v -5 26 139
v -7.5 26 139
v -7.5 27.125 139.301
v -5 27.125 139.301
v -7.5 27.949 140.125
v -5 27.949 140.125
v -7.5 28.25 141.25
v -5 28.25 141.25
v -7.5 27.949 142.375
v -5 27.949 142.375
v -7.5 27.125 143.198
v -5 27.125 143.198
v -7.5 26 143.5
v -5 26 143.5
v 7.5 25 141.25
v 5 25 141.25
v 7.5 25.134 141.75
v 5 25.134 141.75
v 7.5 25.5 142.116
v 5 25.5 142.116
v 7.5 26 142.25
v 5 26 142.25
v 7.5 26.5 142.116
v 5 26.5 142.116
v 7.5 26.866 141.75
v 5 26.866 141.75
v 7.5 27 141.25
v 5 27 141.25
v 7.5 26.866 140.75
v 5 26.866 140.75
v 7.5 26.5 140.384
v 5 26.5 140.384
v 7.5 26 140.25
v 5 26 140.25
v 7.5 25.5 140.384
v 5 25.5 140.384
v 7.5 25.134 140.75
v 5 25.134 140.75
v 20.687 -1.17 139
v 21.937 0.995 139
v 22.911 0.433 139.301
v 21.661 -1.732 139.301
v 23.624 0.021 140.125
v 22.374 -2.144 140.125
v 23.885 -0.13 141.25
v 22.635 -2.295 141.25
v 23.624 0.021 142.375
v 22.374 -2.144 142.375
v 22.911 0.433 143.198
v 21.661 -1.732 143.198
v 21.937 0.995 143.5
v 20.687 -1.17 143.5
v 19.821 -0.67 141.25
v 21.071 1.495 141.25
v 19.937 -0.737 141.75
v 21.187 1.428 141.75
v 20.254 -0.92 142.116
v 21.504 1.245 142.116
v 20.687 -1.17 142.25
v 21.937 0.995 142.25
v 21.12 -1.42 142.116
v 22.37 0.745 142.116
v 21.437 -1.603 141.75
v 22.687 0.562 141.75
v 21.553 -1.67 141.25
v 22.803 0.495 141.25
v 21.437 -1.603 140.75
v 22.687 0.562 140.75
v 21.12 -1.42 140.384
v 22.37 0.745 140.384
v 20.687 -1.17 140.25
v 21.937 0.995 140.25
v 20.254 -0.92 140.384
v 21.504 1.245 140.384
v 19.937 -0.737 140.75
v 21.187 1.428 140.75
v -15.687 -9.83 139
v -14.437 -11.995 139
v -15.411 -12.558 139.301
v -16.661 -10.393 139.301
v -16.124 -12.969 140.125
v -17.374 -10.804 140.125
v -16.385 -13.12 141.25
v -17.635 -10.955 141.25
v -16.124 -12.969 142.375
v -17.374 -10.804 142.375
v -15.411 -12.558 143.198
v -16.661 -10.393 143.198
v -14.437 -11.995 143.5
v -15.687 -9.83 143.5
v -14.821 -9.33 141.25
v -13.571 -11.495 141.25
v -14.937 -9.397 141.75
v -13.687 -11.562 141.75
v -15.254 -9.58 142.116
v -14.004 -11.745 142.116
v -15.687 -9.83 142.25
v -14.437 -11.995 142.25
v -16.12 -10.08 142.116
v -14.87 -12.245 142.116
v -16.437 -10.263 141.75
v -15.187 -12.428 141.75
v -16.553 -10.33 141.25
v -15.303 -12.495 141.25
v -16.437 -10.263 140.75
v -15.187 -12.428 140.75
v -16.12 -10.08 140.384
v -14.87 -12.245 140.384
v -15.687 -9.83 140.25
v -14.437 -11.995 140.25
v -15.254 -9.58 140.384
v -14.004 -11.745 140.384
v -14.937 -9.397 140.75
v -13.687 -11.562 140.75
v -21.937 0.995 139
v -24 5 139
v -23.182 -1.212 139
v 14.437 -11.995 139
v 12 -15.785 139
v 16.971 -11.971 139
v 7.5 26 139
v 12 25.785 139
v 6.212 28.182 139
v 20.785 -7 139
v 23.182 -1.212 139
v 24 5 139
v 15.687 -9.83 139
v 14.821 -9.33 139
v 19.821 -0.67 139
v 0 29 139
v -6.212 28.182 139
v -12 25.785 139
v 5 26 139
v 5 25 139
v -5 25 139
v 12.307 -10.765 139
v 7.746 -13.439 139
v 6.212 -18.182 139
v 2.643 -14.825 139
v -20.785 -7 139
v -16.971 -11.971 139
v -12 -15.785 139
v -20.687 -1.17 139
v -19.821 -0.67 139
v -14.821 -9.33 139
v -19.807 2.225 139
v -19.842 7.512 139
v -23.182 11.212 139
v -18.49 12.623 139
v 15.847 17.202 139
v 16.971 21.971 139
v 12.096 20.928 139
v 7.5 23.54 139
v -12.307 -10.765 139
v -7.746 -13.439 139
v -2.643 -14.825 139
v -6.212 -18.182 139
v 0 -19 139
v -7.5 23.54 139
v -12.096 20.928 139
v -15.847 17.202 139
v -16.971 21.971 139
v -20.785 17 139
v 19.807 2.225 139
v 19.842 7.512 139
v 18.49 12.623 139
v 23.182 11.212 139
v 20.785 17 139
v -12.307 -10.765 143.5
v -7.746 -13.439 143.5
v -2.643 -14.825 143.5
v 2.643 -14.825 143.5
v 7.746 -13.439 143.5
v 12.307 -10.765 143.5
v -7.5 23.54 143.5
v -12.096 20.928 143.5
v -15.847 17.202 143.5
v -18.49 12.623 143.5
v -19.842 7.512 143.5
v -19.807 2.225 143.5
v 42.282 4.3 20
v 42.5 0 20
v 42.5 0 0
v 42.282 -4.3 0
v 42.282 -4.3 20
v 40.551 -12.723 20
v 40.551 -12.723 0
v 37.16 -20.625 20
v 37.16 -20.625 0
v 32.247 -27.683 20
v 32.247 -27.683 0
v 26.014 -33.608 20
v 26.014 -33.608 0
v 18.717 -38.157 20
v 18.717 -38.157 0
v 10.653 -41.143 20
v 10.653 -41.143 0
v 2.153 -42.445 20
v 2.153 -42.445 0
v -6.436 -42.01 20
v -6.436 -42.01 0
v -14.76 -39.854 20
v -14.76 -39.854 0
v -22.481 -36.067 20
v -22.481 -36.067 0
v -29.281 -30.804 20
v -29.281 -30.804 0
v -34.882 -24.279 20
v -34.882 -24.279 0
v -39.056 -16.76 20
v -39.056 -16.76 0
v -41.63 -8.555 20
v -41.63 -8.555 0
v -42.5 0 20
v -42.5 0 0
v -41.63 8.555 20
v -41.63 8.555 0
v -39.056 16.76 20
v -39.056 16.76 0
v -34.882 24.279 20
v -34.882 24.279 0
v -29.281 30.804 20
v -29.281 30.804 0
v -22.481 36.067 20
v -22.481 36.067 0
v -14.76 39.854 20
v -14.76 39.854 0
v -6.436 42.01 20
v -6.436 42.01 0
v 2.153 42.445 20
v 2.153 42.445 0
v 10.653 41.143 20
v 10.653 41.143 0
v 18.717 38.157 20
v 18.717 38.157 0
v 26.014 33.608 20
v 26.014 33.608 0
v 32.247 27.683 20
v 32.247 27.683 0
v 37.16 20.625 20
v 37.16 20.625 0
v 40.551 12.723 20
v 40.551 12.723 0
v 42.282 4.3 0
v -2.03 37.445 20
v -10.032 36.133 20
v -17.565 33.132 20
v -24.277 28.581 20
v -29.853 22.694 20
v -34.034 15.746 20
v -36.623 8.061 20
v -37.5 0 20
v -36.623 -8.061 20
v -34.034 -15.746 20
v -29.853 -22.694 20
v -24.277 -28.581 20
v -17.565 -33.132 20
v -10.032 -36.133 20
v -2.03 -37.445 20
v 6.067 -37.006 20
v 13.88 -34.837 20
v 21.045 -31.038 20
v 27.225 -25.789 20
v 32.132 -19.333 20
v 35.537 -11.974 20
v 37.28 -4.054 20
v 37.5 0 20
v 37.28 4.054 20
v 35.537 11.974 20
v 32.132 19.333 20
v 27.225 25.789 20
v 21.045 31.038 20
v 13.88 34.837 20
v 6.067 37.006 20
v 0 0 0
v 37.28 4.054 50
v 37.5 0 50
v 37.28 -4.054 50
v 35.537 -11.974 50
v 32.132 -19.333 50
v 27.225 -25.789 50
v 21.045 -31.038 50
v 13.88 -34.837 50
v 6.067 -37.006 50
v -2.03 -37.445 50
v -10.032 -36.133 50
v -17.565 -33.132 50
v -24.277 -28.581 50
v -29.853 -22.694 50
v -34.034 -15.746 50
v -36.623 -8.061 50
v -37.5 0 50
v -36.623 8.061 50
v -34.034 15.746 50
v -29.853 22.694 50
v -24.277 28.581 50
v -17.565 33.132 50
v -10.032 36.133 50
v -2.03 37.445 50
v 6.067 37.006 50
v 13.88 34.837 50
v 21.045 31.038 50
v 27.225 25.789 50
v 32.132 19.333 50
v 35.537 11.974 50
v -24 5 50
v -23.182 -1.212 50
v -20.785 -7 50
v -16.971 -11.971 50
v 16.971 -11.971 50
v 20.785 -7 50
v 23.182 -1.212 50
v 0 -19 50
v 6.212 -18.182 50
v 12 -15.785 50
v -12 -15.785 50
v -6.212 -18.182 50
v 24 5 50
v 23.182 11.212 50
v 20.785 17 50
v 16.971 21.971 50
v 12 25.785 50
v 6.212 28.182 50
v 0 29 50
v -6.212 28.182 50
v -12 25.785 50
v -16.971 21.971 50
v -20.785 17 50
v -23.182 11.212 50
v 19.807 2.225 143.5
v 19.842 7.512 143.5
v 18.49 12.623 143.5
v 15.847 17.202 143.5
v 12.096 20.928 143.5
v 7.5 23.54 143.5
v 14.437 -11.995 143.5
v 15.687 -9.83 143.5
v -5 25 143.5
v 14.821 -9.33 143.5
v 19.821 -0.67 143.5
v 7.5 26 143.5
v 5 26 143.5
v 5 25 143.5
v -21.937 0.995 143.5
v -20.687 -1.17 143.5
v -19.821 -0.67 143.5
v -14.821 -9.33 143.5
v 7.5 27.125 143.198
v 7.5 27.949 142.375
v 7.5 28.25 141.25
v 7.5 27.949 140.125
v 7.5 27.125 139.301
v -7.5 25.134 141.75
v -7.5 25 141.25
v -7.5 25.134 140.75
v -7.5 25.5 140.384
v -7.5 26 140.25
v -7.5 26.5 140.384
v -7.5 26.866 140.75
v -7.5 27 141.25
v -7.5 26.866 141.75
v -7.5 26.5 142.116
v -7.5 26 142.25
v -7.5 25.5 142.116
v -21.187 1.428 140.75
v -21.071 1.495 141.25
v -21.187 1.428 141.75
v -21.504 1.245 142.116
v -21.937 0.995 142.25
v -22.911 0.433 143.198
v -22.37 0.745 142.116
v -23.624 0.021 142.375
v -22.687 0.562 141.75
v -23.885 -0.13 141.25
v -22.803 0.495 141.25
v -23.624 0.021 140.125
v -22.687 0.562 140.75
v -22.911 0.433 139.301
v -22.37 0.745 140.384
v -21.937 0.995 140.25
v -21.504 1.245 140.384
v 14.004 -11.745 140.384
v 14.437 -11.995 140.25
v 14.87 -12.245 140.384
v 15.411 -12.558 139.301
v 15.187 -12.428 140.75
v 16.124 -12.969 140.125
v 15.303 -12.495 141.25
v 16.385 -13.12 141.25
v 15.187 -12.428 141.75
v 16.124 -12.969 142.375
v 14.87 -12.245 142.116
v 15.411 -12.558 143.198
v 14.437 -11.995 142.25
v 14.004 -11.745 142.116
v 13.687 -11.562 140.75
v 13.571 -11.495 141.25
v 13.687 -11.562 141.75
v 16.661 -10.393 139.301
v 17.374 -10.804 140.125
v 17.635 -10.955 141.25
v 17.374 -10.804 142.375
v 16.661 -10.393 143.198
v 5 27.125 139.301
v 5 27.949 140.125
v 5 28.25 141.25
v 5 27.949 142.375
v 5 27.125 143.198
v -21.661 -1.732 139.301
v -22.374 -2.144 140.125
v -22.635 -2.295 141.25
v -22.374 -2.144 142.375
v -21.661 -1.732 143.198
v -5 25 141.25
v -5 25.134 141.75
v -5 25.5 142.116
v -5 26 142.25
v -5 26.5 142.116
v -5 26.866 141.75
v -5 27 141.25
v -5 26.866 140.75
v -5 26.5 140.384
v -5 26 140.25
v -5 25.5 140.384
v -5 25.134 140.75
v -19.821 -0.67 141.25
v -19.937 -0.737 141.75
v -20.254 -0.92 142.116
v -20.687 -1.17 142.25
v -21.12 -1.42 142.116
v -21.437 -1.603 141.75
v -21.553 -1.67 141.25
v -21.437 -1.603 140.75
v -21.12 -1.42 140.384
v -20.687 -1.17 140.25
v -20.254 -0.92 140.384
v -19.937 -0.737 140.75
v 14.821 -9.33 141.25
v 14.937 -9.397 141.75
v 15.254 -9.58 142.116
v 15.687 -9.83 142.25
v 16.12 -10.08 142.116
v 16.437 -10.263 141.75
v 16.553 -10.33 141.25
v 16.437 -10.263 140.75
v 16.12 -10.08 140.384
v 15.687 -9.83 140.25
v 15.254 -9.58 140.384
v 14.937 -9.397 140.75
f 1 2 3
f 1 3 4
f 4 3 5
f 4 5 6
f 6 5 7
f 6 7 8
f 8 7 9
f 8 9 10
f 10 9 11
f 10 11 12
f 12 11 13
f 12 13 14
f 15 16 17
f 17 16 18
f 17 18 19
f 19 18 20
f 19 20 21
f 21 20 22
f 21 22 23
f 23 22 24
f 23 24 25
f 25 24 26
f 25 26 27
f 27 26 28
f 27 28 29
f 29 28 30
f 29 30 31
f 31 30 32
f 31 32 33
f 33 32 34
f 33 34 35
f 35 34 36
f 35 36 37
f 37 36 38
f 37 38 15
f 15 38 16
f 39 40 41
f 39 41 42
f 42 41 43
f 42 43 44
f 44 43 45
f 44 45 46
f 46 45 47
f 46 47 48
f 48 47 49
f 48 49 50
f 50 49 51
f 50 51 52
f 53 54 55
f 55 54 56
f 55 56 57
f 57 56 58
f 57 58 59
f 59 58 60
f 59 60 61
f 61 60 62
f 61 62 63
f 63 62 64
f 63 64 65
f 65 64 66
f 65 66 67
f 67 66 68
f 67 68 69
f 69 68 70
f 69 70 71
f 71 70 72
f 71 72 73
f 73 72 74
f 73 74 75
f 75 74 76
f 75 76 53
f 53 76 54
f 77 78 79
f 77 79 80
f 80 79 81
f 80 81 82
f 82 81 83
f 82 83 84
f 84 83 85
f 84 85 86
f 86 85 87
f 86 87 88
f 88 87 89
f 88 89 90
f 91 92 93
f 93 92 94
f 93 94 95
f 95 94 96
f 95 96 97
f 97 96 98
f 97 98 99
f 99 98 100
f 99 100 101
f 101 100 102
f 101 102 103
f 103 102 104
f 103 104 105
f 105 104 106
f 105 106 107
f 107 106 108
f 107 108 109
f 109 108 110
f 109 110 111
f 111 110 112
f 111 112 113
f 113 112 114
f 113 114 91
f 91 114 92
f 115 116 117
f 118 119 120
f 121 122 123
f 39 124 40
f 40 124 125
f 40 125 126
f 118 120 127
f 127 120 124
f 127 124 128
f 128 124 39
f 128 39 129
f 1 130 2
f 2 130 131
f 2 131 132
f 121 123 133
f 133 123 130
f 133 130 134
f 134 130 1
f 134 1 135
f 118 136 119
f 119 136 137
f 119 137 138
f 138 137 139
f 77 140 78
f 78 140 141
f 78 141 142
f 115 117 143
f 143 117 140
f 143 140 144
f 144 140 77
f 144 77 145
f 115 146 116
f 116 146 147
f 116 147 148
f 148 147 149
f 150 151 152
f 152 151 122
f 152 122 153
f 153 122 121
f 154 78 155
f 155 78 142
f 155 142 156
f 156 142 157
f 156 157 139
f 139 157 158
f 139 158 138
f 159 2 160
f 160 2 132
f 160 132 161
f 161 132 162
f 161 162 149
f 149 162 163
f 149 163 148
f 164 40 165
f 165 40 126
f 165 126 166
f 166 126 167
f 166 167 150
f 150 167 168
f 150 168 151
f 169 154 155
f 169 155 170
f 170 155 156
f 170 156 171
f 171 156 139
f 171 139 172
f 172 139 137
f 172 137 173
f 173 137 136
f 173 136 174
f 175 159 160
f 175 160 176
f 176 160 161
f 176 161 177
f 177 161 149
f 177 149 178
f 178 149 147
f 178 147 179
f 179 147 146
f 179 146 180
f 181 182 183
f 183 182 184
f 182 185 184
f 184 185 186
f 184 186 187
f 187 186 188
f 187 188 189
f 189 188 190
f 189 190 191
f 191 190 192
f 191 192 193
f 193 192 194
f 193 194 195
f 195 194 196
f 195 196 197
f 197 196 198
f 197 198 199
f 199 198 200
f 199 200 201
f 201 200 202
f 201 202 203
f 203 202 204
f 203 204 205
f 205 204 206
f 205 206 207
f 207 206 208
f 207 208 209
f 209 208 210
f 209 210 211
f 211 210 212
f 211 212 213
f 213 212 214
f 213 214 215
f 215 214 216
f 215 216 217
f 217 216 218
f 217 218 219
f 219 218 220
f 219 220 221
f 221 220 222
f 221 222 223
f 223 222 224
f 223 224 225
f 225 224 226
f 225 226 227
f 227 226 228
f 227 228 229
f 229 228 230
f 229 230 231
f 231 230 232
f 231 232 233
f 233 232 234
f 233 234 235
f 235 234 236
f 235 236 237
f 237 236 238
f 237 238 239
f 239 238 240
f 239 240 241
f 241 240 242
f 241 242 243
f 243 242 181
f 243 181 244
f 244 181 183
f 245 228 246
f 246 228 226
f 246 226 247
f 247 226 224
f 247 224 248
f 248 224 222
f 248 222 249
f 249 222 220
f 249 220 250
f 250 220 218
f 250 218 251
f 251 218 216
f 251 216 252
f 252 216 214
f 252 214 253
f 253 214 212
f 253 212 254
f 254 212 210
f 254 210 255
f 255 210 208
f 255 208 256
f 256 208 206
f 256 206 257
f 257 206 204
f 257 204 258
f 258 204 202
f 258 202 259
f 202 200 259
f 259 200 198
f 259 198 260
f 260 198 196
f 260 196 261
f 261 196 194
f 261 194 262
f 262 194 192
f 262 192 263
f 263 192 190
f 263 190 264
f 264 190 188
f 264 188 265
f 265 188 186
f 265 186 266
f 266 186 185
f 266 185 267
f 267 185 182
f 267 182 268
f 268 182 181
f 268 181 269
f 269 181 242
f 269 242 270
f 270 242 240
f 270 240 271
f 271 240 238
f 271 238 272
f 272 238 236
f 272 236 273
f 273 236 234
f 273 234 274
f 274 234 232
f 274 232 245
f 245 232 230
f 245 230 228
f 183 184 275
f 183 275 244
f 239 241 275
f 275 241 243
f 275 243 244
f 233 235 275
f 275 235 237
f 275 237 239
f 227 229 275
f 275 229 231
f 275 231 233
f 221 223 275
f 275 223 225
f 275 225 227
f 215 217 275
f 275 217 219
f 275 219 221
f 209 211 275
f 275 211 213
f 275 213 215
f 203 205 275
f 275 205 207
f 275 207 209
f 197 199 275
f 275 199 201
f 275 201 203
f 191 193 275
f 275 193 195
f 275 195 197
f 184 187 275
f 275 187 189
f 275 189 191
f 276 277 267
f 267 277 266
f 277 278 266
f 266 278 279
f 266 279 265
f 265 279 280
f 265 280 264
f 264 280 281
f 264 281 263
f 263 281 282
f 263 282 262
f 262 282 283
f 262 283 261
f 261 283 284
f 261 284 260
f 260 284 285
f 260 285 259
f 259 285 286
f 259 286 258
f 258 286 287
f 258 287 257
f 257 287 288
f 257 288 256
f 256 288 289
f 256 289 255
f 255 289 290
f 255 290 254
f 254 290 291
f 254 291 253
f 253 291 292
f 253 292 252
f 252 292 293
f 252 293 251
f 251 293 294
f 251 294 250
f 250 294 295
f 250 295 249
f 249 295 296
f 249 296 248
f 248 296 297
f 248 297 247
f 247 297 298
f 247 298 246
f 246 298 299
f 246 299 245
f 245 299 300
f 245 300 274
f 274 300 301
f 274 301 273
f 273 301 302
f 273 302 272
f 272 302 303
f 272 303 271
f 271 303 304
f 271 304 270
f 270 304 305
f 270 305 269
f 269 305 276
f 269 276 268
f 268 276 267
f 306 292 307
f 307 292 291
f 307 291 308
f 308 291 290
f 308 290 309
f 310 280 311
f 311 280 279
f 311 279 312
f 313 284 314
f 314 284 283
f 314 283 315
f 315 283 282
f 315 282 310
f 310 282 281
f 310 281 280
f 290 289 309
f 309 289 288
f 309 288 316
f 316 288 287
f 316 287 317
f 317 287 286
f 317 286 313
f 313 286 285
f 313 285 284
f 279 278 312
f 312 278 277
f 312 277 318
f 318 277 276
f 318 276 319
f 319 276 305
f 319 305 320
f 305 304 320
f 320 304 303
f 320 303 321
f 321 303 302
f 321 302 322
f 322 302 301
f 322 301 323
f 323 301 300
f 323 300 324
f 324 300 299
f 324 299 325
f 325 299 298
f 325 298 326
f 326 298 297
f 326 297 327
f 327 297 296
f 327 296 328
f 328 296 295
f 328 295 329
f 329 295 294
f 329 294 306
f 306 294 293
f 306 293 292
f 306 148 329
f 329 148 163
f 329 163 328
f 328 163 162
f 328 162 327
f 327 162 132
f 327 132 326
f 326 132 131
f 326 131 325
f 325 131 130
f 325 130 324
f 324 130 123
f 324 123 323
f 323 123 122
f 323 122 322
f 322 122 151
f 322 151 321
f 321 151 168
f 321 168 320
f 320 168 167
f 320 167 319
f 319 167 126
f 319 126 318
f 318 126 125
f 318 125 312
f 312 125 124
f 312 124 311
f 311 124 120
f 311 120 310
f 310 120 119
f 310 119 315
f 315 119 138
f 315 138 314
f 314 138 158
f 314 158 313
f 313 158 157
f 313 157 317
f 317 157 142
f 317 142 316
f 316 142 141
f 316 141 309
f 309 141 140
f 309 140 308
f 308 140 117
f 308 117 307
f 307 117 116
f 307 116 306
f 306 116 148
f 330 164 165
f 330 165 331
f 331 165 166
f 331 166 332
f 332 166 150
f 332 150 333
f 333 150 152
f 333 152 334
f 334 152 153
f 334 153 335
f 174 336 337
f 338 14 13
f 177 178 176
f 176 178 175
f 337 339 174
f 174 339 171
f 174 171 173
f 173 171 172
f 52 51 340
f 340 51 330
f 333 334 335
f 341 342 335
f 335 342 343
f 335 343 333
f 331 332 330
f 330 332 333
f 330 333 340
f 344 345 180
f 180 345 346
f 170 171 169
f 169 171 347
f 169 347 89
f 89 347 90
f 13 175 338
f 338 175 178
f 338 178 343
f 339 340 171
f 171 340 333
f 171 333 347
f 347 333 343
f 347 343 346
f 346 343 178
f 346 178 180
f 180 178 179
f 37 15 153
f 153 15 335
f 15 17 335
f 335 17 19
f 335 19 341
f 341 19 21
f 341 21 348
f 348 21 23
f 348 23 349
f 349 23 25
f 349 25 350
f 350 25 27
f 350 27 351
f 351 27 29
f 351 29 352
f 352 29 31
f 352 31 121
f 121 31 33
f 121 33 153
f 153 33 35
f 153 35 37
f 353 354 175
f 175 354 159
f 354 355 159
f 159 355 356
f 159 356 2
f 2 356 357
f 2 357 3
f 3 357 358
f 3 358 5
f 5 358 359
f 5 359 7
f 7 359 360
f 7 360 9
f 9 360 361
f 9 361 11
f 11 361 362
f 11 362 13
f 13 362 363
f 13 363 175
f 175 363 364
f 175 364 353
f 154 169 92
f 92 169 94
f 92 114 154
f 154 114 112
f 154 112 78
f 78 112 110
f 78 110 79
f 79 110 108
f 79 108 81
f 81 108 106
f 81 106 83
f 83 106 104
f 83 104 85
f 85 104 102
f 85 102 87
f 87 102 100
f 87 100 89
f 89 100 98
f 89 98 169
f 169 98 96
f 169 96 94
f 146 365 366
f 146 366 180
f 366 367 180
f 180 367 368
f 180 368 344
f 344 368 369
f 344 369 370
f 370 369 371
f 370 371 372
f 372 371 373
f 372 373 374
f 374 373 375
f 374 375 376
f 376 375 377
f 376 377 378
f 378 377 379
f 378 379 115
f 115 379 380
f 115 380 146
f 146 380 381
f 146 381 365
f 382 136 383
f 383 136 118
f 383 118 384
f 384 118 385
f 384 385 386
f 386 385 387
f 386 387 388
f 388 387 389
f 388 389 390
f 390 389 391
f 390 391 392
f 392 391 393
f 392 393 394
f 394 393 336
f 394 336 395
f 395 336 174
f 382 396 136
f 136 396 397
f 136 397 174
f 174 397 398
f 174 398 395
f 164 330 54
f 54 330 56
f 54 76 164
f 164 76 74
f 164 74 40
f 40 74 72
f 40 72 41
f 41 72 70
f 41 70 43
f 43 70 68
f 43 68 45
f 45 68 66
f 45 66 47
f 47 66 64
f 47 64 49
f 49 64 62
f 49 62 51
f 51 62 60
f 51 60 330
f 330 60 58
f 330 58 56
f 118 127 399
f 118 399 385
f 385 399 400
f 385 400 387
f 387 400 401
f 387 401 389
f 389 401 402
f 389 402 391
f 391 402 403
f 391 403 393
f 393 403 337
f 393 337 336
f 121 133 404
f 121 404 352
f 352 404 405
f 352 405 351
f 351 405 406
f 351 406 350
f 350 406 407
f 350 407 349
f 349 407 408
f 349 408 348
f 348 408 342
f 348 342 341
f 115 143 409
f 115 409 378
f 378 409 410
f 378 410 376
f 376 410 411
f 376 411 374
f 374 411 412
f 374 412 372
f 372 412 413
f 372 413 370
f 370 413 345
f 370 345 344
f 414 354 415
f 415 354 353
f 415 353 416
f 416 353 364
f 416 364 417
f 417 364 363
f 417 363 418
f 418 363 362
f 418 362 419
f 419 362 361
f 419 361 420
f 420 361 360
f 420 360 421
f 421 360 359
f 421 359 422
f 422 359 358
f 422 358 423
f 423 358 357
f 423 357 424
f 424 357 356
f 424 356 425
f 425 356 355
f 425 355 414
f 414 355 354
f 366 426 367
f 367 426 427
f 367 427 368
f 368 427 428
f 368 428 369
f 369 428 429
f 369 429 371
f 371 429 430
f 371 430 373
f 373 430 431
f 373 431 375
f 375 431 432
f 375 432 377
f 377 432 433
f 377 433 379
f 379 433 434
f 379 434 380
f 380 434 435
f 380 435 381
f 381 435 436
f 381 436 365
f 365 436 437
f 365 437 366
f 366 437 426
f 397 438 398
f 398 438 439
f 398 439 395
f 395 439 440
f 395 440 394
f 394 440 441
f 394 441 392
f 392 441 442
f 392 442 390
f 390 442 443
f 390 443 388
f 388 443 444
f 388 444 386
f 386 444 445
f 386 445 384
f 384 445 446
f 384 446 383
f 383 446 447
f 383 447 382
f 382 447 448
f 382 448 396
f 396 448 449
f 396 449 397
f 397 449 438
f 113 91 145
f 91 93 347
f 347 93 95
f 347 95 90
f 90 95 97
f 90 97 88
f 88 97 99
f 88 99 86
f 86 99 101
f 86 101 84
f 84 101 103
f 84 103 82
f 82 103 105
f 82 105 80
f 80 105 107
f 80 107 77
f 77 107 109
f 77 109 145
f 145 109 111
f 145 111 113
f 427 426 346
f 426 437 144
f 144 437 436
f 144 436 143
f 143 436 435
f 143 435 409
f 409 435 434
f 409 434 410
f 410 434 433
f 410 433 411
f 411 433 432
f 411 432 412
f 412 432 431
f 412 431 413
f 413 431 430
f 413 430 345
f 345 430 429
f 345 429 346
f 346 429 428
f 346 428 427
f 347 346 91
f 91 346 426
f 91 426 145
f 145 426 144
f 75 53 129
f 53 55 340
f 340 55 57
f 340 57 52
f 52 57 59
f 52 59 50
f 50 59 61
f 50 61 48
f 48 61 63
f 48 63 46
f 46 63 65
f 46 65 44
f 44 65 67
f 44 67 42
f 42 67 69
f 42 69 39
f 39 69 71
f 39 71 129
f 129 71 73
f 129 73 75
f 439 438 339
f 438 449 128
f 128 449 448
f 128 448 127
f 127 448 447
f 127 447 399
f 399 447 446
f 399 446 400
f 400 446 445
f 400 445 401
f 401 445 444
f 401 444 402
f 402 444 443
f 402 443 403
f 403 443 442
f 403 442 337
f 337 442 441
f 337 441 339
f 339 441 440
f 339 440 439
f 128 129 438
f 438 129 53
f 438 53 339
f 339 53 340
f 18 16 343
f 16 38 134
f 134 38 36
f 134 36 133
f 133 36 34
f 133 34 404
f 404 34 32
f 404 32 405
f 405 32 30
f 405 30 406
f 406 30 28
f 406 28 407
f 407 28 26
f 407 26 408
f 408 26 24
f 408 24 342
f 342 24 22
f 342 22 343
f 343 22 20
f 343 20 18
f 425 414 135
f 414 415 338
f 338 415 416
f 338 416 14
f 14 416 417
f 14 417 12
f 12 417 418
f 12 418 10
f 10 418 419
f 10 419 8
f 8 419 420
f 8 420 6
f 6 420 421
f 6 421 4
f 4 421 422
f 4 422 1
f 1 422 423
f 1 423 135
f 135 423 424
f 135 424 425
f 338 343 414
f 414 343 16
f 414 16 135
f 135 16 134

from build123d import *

# Parameters (mm, degrees)
SKETCH_1_R          = 42.5
EXTRUDE_1_DEPTH     = 20
SKETCH_2_R          = 37.5
EXTRUDE_2_DEPTH     = 30
SKETCH_3_R          = 24
EXTRUDE_3_DEPTH     = 89
SKETCH_5_R          = 20
EXTRUDE_4_DEPTH     = 4.5
SKETCH_7_W          = 15
SKETCH_7_H          = 4.5
EXTRUDE_5_DEPTH     = 10
SKETCH_8_W          = 4.5
SKETCH_8_H          = 15
EXTRUDE_6_DEPTH     = 10
SKETCH_9_W          = 4.5
SKETCH_9_H          = 15
EXTRUDE_7_DEPTH     = 10
EXTRUDE_8_DEPTH     = 15
EXTRUDE_9_DEPTH     = 15
EXTRUDE_10_DEPTH    = 15
SKETCH_13_R         = 1
CUT_EXTRUDE_1_DEPTH = 51
SKETCH_14_R         = 1
CUT_EXTRUDE_2_DEPTH = 62.225952642
SKETCH_15_R         = 1
CUT_EXTRUDE_3_DEPTH = 70.88620668
SKETCH_18_W         = 4.5
SKETCH_18_H         = 10
CUT_EXTRUDE_4_DEPTH = 3.25
SKETCH_19_W         = 4.5
SKETCH_19_H         = 10
CUT_EXTRUDE_5_DEPTH = 3.25
SKETCH_20_W         = 10
SKETCH_20_H         = 4.5
CUT_EXTRUDE_6_DEPTH = 3.25


with BuildPart() as part:
    # ｽｹｯﾁ1 → ﾎﾞｽ - 押し出し1 (new body)
    with BuildSketch(Plane.XY):
        Circle(SKETCH_1_R)
    extrude(amount=EXTRUDE_1_DEPTH)

    # ｽｹｯﾁ2 → ﾎﾞｽ - 押し出し2 (add)
    with BuildSketch(Plane.XY.offset(20)):
        Circle(SKETCH_2_R)
    extrude(amount=EXTRUDE_2_DEPTH)

    # ｽｹｯﾁ3 → ﾎﾞｽ - 押し出し3 (add)
    with BuildSketch(Plane.XY.offset(50)):
        with Locations((0, 5)):
            Circle(SKETCH_3_R)
    extrude(amount=EXTRUDE_3_DEPTH)

    # ｽｹｯﾁ5 → ﾎﾞｽ - 押し出し4 (add)
    with BuildSketch(Plane.XY.offset(139)):
        with Locations((0, 5)):
            Circle(SKETCH_5_R)
    extrude(amount=EXTRUDE_4_DEPTH)

    # ｽｹｯﾁ7 → ﾎﾞｽ - 押し出し5 (add)
    with BuildSketch(Plane(origin=(0, 25, 0), x_dir=(1, 0, 0), z_dir=(0, 1, 0))):
        with Locations((0, -141.25)):
            Rectangle(SKETCH_7_W, SKETCH_7_H)
    extrude(amount=-EXTRUDE_5_DEPTH)

    # ｽｹｯﾁ8 → ﾎﾞｽ - 押し出し6 (add)
    with BuildSketch(Plane(origin=(-15.155444566, -8.75, 0), x_dir=(0, 0, 1), z_dir=(-0.866025404, -0.5, 0))):
        with Locations((141.25, 4.330127019)):
            Rectangle(SKETCH_8_W, SKETCH_8_H)
    extrude(amount=-EXTRUDE_6_DEPTH)

    # ｽｹｯﾁ9 → ﾎﾞｽ - 押し出し7 (add)
    with BuildSketch(Plane(origin=(15.155444566, -8.75, 0), x_dir=(0, 0, -1), z_dir=(0.866025404, -0.5, 0))):
        with Locations((-141.25, 4.330127019)):
            Rectangle(SKETCH_9_W, SKETCH_9_H)
    extrude(amount=-EXTRUDE_7_DEPTH)

    # ｽｹｯﾁ10 → ﾎﾞｽ - 押し出し8 (add)
    with BuildSketch(Plane(origin=(5.915063509, 10.245190528, 0), x_dir=(0.866025404, -0.5, 0), z_dir=(0.5, 0.866025404, 0))):
        with BuildLine():
            Line((17.5, -143.5), (18.5, -143.5))
            ThreePointArc((18.5, -143.5), (20.75, -141.25), (18.5, -139))
            Line((18.5, -139), (17.5, -139))
            Line((17.5, -139), (17.5, -143.5))
        make_face()
    extrude(amount=-EXTRUDE_8_DEPTH)

    # ｽｹｯﾁ11 → ﾎﾞｽ - 押し出し9 (add)
    with BuildSketch(Plane.ZY.offset(7.5)):
        with BuildLine():
            Line((139, 25), (143.5, 25))
            Line((143.5, 25), (143.5, 26))
            ThreePointArc((143.5, 26), (141.25, 28.25), (139, 26))
            Line((139, 26), (139, 25))
        make_face()
    extrude(amount=-EXTRUDE_9_DEPTH)

    # ｽｹｯﾁ12 → ﾎﾞｽ - 押し出し10 (add)
    with BuildSketch(Plane(origin=(1.584936491, -2.745190528, 0), x_dir=(0.866025404, 0.5, 0), z_dir=(0.5, -0.866025404, 0))):
        with BuildLine():
            Line((-17.5, 139), (-17.5, 143.5))
            Line((-17.5, 143.5), (-18.5, 143.5))
            ThreePointArc((-18.5, 143.5), (-20.75, 141.25), (-18.5, 139))
            Line((-18.5, 139), (-17.5, 139))
        make_face()
    extrude(amount=-EXTRUDE_10_DEPTH)

    # ｽｹｯﾁ13 → ｶｯﾄ - 押し出し1 (cut, through all)
    with BuildSketch(Plane.ZY.offset(7.5)):
        with Locations((141.25, 26)):
            Circle(SKETCH_13_R)
    extrude(amount=-CUT_EXTRUDE_1_DEPTH, mode=Mode.SUBTRACT)

    # ｽｹｯﾁ14 → ｶｯﾄ - 押し出し2 (cut, through all)
    with BuildSketch(Plane(origin=(1.584936491, -2.745190528, 0), x_dir=(-0.866025404, -0.5, 0), z_dir=(0.5, -0.866025404, 0))):
        with Locations((18.5, -141.25)):
            Circle(SKETCH_14_R)
    extrude(amount=-CUT_EXTRUDE_2_DEPTH, mode=Mode.SUBTRACT)

    # ｽｹｯﾁ15 → ｶｯﾄ - 押し出し3 (cut, through all)
    with BuildSketch(Plane(origin=(5.915063509, 10.245190528, 0), x_dir=(0.866025404, -0.5, 0), z_dir=(0.5, 0.866025404, 0))):
        with Locations((18.5, -141.25)):
            Circle(SKETCH_15_R)
    extrude(amount=-CUT_EXTRUDE_3_DEPTH, mode=Mode.SUBTRACT)

    # ｽｹｯﾁ18 → ｶｯﾄ - 押し出し4 (cut)
    with BuildSketch(Plane(origin=(-17.970027129, -10.375, 0), x_dir=(0, 0, 1), z_dir=(-0.866025404, -0.5, 0))):
        with Locations((141.25, 4.330127019)):
            Rectangle(SKETCH_18_W, SKETCH_18_H)
    extrude(amount=-CUT_EXTRUDE_4_DEPTH, mode=Mode.SUBTRACT)

    # ｽｹｯﾁ19 → ｶｯﾄ - 押し出し5 (cut)
    with BuildSketch(Plane(origin=(17.970027129, -10.375, 0), x_dir=(0, 0, -1), z_dir=(0.866025404, -0.5, 0))):
        with Locations((-141.25, 4.330127019)):
            Rectangle(SKETCH_19_W, SKETCH_19_H)
    extrude(amount=-CUT_EXTRUDE_5_DEPTH, mode=Mode.SUBTRACT)

    # ｽｹｯﾁ20 → ｶｯﾄ - 押し出し6 (cut)
    with BuildSketch(Plane(origin=(0, 28.25, 0), x_dir=(1, 0, 0), z_dir=(0, 1, 0))):
        with Locations((0, -141.25)):
            Rectangle(SKETCH_20_W, SKETCH_20_H)
    extrude(amount=-CUT_EXTRUDE_6_DEPTH, mode=Mode.SUBTRACT)


solid = part.part
